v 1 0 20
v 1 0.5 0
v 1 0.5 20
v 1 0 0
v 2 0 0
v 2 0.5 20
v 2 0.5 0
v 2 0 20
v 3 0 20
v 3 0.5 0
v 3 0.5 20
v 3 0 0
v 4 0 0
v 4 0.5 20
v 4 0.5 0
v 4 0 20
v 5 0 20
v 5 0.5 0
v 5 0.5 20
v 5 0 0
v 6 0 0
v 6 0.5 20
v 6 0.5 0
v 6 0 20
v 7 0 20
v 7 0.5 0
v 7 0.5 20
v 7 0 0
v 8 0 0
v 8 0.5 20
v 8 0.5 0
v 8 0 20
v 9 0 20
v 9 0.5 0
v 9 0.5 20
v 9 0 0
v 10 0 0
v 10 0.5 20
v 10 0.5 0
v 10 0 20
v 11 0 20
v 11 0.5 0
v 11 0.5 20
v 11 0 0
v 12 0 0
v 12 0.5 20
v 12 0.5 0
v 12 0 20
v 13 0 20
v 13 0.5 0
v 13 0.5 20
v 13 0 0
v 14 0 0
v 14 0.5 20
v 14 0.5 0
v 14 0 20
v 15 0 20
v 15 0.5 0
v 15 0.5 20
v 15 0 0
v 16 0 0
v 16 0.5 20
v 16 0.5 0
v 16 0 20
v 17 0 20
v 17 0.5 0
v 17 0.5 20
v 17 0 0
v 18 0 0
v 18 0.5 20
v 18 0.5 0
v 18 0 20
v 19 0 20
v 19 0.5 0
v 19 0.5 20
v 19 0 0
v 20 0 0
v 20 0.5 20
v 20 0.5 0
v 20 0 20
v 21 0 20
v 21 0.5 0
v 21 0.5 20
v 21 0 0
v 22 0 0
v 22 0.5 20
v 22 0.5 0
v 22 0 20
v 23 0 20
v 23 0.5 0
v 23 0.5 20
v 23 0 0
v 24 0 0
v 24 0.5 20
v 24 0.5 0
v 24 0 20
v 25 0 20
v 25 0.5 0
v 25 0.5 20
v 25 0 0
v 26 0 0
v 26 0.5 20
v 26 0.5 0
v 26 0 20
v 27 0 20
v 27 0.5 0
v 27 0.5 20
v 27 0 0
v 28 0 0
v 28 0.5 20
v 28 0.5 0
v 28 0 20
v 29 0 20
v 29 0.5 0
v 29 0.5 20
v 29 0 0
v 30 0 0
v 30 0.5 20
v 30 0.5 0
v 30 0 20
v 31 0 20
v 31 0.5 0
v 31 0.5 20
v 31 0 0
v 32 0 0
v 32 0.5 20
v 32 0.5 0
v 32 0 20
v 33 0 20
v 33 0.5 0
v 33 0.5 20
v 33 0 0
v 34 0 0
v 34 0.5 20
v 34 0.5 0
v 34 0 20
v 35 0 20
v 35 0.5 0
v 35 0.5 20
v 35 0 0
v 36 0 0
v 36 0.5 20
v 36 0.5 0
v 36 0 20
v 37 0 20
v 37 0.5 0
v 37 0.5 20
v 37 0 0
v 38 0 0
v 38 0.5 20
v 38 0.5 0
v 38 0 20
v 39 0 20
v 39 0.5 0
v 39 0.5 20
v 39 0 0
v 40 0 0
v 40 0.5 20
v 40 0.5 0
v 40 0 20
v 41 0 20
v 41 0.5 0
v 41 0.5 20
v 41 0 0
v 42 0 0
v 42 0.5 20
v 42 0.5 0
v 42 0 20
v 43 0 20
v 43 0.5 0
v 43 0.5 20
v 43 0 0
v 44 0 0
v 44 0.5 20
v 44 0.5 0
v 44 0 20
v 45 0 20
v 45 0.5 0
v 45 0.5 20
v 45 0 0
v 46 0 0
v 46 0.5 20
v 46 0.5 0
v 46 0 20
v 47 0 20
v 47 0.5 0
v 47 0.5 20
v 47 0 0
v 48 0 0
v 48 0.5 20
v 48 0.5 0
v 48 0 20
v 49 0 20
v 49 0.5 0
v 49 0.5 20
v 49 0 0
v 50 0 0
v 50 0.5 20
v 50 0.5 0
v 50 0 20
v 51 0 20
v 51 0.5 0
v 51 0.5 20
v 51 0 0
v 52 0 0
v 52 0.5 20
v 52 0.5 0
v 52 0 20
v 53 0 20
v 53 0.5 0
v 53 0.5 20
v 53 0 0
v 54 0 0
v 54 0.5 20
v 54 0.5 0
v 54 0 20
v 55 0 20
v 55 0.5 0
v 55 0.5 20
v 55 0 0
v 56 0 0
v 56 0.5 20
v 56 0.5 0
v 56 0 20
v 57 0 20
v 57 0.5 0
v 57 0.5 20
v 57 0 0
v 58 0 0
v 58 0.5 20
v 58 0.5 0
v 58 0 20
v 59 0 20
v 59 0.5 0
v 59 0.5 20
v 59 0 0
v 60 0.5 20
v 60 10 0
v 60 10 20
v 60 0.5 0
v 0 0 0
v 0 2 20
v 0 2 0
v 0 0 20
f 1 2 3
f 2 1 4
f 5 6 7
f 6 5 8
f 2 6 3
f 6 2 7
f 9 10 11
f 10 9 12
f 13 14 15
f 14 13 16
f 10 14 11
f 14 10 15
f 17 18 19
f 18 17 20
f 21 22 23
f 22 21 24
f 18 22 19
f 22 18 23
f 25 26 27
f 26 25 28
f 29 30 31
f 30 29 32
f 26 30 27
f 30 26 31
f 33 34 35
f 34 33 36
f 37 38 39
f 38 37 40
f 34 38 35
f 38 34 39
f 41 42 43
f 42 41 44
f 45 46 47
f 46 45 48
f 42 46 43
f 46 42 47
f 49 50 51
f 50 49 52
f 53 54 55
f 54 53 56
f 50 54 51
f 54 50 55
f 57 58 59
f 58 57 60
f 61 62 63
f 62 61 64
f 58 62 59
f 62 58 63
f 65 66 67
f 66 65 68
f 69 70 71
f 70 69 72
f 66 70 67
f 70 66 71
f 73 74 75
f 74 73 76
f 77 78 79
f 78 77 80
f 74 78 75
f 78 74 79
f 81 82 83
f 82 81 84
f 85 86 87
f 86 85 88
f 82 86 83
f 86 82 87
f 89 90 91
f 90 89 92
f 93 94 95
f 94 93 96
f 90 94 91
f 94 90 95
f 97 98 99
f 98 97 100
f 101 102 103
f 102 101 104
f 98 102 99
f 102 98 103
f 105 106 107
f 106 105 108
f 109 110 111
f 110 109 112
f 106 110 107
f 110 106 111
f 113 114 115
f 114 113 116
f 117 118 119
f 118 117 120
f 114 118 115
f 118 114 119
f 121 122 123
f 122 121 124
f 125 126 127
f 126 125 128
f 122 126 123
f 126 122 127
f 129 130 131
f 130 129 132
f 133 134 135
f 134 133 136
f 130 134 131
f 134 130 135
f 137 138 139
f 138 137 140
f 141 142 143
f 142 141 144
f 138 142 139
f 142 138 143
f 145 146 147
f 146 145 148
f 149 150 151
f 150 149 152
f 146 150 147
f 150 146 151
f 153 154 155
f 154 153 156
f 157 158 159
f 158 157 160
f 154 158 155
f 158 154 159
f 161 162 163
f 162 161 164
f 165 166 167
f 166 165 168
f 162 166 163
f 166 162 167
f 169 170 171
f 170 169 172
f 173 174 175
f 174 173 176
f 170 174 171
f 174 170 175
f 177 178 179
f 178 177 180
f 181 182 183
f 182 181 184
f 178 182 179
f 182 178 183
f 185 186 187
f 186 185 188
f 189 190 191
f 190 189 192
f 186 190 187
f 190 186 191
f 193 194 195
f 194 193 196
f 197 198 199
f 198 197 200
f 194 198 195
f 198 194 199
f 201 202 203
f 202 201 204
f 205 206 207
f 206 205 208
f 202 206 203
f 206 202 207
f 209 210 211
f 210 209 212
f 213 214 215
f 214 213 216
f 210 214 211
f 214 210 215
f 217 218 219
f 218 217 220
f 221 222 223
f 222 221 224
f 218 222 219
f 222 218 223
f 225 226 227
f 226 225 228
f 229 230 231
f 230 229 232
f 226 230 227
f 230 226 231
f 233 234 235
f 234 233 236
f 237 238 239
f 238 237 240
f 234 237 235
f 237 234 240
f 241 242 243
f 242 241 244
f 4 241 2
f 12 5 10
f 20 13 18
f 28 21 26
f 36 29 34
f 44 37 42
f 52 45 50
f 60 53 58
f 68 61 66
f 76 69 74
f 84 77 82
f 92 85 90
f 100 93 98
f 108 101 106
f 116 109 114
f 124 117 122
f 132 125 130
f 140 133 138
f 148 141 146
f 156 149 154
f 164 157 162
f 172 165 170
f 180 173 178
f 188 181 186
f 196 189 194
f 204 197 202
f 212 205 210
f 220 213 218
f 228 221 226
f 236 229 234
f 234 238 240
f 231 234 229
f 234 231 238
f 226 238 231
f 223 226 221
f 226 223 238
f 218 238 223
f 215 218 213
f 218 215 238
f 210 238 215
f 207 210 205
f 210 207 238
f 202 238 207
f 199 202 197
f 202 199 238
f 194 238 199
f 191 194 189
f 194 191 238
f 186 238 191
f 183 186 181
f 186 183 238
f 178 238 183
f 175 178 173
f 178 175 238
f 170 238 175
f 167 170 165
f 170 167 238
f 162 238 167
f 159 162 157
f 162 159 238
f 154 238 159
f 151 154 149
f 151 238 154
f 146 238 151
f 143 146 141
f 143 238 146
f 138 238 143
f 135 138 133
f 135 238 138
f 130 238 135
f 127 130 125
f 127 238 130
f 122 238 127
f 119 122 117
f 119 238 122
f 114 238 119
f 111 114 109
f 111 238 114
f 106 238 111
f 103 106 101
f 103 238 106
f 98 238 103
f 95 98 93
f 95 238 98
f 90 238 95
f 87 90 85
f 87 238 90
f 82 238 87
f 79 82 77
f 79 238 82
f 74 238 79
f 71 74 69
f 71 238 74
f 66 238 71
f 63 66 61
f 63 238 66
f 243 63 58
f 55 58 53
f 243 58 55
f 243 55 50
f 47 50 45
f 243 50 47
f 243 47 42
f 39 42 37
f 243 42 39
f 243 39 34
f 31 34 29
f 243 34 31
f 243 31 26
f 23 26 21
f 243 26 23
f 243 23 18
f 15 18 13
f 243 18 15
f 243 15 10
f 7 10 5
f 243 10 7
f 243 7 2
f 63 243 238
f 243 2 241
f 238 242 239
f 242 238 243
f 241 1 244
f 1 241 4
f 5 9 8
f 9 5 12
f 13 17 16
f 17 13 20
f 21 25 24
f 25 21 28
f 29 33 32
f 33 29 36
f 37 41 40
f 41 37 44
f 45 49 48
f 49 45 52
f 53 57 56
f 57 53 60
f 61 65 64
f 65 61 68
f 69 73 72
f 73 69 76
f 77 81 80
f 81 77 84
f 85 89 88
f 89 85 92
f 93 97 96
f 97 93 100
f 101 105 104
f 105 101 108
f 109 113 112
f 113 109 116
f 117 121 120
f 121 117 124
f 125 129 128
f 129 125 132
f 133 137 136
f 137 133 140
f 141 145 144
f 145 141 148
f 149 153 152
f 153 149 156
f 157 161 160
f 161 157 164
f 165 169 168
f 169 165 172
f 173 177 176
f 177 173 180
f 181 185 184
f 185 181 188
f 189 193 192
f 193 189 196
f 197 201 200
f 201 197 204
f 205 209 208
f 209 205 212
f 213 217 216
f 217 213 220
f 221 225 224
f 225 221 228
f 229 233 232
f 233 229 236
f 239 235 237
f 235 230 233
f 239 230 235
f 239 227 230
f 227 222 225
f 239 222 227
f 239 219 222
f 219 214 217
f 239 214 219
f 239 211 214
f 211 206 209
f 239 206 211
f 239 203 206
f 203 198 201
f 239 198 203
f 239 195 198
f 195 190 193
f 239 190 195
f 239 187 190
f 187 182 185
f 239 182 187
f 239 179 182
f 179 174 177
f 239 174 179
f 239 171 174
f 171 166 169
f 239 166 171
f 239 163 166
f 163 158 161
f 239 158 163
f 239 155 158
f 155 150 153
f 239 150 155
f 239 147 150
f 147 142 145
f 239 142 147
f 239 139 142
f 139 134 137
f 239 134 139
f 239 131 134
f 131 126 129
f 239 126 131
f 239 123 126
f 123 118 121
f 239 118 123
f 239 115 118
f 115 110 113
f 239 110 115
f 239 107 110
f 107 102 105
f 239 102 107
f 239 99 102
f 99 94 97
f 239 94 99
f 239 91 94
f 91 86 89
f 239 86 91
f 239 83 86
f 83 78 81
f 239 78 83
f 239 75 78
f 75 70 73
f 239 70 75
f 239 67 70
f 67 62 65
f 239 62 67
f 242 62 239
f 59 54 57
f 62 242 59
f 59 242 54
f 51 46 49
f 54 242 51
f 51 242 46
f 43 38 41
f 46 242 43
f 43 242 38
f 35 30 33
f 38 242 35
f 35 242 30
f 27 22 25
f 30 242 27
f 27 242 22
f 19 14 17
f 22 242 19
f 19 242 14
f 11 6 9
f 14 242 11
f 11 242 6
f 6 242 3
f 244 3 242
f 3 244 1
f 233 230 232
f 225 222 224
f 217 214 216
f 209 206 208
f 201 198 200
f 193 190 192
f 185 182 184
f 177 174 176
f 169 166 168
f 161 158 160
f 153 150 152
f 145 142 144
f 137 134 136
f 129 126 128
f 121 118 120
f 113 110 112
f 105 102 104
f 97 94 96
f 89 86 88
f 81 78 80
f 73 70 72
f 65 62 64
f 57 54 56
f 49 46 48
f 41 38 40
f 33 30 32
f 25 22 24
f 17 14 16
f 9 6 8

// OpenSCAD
       // Those settings have to be identical to the box !!!
length      = 140;          // Width of the cover (outer dimension) 

//Definition of circle angular resolution
resol        = 36;           // Identical to housing !!!

difference () {

linear_extrude(20) polygon(points=[[0,0],[60,0],[60,10],[0,2]]);

  for (i=[1:2:60]) translate ([i,-0.5,-5]) cube ([1,1,30]);

}
 
